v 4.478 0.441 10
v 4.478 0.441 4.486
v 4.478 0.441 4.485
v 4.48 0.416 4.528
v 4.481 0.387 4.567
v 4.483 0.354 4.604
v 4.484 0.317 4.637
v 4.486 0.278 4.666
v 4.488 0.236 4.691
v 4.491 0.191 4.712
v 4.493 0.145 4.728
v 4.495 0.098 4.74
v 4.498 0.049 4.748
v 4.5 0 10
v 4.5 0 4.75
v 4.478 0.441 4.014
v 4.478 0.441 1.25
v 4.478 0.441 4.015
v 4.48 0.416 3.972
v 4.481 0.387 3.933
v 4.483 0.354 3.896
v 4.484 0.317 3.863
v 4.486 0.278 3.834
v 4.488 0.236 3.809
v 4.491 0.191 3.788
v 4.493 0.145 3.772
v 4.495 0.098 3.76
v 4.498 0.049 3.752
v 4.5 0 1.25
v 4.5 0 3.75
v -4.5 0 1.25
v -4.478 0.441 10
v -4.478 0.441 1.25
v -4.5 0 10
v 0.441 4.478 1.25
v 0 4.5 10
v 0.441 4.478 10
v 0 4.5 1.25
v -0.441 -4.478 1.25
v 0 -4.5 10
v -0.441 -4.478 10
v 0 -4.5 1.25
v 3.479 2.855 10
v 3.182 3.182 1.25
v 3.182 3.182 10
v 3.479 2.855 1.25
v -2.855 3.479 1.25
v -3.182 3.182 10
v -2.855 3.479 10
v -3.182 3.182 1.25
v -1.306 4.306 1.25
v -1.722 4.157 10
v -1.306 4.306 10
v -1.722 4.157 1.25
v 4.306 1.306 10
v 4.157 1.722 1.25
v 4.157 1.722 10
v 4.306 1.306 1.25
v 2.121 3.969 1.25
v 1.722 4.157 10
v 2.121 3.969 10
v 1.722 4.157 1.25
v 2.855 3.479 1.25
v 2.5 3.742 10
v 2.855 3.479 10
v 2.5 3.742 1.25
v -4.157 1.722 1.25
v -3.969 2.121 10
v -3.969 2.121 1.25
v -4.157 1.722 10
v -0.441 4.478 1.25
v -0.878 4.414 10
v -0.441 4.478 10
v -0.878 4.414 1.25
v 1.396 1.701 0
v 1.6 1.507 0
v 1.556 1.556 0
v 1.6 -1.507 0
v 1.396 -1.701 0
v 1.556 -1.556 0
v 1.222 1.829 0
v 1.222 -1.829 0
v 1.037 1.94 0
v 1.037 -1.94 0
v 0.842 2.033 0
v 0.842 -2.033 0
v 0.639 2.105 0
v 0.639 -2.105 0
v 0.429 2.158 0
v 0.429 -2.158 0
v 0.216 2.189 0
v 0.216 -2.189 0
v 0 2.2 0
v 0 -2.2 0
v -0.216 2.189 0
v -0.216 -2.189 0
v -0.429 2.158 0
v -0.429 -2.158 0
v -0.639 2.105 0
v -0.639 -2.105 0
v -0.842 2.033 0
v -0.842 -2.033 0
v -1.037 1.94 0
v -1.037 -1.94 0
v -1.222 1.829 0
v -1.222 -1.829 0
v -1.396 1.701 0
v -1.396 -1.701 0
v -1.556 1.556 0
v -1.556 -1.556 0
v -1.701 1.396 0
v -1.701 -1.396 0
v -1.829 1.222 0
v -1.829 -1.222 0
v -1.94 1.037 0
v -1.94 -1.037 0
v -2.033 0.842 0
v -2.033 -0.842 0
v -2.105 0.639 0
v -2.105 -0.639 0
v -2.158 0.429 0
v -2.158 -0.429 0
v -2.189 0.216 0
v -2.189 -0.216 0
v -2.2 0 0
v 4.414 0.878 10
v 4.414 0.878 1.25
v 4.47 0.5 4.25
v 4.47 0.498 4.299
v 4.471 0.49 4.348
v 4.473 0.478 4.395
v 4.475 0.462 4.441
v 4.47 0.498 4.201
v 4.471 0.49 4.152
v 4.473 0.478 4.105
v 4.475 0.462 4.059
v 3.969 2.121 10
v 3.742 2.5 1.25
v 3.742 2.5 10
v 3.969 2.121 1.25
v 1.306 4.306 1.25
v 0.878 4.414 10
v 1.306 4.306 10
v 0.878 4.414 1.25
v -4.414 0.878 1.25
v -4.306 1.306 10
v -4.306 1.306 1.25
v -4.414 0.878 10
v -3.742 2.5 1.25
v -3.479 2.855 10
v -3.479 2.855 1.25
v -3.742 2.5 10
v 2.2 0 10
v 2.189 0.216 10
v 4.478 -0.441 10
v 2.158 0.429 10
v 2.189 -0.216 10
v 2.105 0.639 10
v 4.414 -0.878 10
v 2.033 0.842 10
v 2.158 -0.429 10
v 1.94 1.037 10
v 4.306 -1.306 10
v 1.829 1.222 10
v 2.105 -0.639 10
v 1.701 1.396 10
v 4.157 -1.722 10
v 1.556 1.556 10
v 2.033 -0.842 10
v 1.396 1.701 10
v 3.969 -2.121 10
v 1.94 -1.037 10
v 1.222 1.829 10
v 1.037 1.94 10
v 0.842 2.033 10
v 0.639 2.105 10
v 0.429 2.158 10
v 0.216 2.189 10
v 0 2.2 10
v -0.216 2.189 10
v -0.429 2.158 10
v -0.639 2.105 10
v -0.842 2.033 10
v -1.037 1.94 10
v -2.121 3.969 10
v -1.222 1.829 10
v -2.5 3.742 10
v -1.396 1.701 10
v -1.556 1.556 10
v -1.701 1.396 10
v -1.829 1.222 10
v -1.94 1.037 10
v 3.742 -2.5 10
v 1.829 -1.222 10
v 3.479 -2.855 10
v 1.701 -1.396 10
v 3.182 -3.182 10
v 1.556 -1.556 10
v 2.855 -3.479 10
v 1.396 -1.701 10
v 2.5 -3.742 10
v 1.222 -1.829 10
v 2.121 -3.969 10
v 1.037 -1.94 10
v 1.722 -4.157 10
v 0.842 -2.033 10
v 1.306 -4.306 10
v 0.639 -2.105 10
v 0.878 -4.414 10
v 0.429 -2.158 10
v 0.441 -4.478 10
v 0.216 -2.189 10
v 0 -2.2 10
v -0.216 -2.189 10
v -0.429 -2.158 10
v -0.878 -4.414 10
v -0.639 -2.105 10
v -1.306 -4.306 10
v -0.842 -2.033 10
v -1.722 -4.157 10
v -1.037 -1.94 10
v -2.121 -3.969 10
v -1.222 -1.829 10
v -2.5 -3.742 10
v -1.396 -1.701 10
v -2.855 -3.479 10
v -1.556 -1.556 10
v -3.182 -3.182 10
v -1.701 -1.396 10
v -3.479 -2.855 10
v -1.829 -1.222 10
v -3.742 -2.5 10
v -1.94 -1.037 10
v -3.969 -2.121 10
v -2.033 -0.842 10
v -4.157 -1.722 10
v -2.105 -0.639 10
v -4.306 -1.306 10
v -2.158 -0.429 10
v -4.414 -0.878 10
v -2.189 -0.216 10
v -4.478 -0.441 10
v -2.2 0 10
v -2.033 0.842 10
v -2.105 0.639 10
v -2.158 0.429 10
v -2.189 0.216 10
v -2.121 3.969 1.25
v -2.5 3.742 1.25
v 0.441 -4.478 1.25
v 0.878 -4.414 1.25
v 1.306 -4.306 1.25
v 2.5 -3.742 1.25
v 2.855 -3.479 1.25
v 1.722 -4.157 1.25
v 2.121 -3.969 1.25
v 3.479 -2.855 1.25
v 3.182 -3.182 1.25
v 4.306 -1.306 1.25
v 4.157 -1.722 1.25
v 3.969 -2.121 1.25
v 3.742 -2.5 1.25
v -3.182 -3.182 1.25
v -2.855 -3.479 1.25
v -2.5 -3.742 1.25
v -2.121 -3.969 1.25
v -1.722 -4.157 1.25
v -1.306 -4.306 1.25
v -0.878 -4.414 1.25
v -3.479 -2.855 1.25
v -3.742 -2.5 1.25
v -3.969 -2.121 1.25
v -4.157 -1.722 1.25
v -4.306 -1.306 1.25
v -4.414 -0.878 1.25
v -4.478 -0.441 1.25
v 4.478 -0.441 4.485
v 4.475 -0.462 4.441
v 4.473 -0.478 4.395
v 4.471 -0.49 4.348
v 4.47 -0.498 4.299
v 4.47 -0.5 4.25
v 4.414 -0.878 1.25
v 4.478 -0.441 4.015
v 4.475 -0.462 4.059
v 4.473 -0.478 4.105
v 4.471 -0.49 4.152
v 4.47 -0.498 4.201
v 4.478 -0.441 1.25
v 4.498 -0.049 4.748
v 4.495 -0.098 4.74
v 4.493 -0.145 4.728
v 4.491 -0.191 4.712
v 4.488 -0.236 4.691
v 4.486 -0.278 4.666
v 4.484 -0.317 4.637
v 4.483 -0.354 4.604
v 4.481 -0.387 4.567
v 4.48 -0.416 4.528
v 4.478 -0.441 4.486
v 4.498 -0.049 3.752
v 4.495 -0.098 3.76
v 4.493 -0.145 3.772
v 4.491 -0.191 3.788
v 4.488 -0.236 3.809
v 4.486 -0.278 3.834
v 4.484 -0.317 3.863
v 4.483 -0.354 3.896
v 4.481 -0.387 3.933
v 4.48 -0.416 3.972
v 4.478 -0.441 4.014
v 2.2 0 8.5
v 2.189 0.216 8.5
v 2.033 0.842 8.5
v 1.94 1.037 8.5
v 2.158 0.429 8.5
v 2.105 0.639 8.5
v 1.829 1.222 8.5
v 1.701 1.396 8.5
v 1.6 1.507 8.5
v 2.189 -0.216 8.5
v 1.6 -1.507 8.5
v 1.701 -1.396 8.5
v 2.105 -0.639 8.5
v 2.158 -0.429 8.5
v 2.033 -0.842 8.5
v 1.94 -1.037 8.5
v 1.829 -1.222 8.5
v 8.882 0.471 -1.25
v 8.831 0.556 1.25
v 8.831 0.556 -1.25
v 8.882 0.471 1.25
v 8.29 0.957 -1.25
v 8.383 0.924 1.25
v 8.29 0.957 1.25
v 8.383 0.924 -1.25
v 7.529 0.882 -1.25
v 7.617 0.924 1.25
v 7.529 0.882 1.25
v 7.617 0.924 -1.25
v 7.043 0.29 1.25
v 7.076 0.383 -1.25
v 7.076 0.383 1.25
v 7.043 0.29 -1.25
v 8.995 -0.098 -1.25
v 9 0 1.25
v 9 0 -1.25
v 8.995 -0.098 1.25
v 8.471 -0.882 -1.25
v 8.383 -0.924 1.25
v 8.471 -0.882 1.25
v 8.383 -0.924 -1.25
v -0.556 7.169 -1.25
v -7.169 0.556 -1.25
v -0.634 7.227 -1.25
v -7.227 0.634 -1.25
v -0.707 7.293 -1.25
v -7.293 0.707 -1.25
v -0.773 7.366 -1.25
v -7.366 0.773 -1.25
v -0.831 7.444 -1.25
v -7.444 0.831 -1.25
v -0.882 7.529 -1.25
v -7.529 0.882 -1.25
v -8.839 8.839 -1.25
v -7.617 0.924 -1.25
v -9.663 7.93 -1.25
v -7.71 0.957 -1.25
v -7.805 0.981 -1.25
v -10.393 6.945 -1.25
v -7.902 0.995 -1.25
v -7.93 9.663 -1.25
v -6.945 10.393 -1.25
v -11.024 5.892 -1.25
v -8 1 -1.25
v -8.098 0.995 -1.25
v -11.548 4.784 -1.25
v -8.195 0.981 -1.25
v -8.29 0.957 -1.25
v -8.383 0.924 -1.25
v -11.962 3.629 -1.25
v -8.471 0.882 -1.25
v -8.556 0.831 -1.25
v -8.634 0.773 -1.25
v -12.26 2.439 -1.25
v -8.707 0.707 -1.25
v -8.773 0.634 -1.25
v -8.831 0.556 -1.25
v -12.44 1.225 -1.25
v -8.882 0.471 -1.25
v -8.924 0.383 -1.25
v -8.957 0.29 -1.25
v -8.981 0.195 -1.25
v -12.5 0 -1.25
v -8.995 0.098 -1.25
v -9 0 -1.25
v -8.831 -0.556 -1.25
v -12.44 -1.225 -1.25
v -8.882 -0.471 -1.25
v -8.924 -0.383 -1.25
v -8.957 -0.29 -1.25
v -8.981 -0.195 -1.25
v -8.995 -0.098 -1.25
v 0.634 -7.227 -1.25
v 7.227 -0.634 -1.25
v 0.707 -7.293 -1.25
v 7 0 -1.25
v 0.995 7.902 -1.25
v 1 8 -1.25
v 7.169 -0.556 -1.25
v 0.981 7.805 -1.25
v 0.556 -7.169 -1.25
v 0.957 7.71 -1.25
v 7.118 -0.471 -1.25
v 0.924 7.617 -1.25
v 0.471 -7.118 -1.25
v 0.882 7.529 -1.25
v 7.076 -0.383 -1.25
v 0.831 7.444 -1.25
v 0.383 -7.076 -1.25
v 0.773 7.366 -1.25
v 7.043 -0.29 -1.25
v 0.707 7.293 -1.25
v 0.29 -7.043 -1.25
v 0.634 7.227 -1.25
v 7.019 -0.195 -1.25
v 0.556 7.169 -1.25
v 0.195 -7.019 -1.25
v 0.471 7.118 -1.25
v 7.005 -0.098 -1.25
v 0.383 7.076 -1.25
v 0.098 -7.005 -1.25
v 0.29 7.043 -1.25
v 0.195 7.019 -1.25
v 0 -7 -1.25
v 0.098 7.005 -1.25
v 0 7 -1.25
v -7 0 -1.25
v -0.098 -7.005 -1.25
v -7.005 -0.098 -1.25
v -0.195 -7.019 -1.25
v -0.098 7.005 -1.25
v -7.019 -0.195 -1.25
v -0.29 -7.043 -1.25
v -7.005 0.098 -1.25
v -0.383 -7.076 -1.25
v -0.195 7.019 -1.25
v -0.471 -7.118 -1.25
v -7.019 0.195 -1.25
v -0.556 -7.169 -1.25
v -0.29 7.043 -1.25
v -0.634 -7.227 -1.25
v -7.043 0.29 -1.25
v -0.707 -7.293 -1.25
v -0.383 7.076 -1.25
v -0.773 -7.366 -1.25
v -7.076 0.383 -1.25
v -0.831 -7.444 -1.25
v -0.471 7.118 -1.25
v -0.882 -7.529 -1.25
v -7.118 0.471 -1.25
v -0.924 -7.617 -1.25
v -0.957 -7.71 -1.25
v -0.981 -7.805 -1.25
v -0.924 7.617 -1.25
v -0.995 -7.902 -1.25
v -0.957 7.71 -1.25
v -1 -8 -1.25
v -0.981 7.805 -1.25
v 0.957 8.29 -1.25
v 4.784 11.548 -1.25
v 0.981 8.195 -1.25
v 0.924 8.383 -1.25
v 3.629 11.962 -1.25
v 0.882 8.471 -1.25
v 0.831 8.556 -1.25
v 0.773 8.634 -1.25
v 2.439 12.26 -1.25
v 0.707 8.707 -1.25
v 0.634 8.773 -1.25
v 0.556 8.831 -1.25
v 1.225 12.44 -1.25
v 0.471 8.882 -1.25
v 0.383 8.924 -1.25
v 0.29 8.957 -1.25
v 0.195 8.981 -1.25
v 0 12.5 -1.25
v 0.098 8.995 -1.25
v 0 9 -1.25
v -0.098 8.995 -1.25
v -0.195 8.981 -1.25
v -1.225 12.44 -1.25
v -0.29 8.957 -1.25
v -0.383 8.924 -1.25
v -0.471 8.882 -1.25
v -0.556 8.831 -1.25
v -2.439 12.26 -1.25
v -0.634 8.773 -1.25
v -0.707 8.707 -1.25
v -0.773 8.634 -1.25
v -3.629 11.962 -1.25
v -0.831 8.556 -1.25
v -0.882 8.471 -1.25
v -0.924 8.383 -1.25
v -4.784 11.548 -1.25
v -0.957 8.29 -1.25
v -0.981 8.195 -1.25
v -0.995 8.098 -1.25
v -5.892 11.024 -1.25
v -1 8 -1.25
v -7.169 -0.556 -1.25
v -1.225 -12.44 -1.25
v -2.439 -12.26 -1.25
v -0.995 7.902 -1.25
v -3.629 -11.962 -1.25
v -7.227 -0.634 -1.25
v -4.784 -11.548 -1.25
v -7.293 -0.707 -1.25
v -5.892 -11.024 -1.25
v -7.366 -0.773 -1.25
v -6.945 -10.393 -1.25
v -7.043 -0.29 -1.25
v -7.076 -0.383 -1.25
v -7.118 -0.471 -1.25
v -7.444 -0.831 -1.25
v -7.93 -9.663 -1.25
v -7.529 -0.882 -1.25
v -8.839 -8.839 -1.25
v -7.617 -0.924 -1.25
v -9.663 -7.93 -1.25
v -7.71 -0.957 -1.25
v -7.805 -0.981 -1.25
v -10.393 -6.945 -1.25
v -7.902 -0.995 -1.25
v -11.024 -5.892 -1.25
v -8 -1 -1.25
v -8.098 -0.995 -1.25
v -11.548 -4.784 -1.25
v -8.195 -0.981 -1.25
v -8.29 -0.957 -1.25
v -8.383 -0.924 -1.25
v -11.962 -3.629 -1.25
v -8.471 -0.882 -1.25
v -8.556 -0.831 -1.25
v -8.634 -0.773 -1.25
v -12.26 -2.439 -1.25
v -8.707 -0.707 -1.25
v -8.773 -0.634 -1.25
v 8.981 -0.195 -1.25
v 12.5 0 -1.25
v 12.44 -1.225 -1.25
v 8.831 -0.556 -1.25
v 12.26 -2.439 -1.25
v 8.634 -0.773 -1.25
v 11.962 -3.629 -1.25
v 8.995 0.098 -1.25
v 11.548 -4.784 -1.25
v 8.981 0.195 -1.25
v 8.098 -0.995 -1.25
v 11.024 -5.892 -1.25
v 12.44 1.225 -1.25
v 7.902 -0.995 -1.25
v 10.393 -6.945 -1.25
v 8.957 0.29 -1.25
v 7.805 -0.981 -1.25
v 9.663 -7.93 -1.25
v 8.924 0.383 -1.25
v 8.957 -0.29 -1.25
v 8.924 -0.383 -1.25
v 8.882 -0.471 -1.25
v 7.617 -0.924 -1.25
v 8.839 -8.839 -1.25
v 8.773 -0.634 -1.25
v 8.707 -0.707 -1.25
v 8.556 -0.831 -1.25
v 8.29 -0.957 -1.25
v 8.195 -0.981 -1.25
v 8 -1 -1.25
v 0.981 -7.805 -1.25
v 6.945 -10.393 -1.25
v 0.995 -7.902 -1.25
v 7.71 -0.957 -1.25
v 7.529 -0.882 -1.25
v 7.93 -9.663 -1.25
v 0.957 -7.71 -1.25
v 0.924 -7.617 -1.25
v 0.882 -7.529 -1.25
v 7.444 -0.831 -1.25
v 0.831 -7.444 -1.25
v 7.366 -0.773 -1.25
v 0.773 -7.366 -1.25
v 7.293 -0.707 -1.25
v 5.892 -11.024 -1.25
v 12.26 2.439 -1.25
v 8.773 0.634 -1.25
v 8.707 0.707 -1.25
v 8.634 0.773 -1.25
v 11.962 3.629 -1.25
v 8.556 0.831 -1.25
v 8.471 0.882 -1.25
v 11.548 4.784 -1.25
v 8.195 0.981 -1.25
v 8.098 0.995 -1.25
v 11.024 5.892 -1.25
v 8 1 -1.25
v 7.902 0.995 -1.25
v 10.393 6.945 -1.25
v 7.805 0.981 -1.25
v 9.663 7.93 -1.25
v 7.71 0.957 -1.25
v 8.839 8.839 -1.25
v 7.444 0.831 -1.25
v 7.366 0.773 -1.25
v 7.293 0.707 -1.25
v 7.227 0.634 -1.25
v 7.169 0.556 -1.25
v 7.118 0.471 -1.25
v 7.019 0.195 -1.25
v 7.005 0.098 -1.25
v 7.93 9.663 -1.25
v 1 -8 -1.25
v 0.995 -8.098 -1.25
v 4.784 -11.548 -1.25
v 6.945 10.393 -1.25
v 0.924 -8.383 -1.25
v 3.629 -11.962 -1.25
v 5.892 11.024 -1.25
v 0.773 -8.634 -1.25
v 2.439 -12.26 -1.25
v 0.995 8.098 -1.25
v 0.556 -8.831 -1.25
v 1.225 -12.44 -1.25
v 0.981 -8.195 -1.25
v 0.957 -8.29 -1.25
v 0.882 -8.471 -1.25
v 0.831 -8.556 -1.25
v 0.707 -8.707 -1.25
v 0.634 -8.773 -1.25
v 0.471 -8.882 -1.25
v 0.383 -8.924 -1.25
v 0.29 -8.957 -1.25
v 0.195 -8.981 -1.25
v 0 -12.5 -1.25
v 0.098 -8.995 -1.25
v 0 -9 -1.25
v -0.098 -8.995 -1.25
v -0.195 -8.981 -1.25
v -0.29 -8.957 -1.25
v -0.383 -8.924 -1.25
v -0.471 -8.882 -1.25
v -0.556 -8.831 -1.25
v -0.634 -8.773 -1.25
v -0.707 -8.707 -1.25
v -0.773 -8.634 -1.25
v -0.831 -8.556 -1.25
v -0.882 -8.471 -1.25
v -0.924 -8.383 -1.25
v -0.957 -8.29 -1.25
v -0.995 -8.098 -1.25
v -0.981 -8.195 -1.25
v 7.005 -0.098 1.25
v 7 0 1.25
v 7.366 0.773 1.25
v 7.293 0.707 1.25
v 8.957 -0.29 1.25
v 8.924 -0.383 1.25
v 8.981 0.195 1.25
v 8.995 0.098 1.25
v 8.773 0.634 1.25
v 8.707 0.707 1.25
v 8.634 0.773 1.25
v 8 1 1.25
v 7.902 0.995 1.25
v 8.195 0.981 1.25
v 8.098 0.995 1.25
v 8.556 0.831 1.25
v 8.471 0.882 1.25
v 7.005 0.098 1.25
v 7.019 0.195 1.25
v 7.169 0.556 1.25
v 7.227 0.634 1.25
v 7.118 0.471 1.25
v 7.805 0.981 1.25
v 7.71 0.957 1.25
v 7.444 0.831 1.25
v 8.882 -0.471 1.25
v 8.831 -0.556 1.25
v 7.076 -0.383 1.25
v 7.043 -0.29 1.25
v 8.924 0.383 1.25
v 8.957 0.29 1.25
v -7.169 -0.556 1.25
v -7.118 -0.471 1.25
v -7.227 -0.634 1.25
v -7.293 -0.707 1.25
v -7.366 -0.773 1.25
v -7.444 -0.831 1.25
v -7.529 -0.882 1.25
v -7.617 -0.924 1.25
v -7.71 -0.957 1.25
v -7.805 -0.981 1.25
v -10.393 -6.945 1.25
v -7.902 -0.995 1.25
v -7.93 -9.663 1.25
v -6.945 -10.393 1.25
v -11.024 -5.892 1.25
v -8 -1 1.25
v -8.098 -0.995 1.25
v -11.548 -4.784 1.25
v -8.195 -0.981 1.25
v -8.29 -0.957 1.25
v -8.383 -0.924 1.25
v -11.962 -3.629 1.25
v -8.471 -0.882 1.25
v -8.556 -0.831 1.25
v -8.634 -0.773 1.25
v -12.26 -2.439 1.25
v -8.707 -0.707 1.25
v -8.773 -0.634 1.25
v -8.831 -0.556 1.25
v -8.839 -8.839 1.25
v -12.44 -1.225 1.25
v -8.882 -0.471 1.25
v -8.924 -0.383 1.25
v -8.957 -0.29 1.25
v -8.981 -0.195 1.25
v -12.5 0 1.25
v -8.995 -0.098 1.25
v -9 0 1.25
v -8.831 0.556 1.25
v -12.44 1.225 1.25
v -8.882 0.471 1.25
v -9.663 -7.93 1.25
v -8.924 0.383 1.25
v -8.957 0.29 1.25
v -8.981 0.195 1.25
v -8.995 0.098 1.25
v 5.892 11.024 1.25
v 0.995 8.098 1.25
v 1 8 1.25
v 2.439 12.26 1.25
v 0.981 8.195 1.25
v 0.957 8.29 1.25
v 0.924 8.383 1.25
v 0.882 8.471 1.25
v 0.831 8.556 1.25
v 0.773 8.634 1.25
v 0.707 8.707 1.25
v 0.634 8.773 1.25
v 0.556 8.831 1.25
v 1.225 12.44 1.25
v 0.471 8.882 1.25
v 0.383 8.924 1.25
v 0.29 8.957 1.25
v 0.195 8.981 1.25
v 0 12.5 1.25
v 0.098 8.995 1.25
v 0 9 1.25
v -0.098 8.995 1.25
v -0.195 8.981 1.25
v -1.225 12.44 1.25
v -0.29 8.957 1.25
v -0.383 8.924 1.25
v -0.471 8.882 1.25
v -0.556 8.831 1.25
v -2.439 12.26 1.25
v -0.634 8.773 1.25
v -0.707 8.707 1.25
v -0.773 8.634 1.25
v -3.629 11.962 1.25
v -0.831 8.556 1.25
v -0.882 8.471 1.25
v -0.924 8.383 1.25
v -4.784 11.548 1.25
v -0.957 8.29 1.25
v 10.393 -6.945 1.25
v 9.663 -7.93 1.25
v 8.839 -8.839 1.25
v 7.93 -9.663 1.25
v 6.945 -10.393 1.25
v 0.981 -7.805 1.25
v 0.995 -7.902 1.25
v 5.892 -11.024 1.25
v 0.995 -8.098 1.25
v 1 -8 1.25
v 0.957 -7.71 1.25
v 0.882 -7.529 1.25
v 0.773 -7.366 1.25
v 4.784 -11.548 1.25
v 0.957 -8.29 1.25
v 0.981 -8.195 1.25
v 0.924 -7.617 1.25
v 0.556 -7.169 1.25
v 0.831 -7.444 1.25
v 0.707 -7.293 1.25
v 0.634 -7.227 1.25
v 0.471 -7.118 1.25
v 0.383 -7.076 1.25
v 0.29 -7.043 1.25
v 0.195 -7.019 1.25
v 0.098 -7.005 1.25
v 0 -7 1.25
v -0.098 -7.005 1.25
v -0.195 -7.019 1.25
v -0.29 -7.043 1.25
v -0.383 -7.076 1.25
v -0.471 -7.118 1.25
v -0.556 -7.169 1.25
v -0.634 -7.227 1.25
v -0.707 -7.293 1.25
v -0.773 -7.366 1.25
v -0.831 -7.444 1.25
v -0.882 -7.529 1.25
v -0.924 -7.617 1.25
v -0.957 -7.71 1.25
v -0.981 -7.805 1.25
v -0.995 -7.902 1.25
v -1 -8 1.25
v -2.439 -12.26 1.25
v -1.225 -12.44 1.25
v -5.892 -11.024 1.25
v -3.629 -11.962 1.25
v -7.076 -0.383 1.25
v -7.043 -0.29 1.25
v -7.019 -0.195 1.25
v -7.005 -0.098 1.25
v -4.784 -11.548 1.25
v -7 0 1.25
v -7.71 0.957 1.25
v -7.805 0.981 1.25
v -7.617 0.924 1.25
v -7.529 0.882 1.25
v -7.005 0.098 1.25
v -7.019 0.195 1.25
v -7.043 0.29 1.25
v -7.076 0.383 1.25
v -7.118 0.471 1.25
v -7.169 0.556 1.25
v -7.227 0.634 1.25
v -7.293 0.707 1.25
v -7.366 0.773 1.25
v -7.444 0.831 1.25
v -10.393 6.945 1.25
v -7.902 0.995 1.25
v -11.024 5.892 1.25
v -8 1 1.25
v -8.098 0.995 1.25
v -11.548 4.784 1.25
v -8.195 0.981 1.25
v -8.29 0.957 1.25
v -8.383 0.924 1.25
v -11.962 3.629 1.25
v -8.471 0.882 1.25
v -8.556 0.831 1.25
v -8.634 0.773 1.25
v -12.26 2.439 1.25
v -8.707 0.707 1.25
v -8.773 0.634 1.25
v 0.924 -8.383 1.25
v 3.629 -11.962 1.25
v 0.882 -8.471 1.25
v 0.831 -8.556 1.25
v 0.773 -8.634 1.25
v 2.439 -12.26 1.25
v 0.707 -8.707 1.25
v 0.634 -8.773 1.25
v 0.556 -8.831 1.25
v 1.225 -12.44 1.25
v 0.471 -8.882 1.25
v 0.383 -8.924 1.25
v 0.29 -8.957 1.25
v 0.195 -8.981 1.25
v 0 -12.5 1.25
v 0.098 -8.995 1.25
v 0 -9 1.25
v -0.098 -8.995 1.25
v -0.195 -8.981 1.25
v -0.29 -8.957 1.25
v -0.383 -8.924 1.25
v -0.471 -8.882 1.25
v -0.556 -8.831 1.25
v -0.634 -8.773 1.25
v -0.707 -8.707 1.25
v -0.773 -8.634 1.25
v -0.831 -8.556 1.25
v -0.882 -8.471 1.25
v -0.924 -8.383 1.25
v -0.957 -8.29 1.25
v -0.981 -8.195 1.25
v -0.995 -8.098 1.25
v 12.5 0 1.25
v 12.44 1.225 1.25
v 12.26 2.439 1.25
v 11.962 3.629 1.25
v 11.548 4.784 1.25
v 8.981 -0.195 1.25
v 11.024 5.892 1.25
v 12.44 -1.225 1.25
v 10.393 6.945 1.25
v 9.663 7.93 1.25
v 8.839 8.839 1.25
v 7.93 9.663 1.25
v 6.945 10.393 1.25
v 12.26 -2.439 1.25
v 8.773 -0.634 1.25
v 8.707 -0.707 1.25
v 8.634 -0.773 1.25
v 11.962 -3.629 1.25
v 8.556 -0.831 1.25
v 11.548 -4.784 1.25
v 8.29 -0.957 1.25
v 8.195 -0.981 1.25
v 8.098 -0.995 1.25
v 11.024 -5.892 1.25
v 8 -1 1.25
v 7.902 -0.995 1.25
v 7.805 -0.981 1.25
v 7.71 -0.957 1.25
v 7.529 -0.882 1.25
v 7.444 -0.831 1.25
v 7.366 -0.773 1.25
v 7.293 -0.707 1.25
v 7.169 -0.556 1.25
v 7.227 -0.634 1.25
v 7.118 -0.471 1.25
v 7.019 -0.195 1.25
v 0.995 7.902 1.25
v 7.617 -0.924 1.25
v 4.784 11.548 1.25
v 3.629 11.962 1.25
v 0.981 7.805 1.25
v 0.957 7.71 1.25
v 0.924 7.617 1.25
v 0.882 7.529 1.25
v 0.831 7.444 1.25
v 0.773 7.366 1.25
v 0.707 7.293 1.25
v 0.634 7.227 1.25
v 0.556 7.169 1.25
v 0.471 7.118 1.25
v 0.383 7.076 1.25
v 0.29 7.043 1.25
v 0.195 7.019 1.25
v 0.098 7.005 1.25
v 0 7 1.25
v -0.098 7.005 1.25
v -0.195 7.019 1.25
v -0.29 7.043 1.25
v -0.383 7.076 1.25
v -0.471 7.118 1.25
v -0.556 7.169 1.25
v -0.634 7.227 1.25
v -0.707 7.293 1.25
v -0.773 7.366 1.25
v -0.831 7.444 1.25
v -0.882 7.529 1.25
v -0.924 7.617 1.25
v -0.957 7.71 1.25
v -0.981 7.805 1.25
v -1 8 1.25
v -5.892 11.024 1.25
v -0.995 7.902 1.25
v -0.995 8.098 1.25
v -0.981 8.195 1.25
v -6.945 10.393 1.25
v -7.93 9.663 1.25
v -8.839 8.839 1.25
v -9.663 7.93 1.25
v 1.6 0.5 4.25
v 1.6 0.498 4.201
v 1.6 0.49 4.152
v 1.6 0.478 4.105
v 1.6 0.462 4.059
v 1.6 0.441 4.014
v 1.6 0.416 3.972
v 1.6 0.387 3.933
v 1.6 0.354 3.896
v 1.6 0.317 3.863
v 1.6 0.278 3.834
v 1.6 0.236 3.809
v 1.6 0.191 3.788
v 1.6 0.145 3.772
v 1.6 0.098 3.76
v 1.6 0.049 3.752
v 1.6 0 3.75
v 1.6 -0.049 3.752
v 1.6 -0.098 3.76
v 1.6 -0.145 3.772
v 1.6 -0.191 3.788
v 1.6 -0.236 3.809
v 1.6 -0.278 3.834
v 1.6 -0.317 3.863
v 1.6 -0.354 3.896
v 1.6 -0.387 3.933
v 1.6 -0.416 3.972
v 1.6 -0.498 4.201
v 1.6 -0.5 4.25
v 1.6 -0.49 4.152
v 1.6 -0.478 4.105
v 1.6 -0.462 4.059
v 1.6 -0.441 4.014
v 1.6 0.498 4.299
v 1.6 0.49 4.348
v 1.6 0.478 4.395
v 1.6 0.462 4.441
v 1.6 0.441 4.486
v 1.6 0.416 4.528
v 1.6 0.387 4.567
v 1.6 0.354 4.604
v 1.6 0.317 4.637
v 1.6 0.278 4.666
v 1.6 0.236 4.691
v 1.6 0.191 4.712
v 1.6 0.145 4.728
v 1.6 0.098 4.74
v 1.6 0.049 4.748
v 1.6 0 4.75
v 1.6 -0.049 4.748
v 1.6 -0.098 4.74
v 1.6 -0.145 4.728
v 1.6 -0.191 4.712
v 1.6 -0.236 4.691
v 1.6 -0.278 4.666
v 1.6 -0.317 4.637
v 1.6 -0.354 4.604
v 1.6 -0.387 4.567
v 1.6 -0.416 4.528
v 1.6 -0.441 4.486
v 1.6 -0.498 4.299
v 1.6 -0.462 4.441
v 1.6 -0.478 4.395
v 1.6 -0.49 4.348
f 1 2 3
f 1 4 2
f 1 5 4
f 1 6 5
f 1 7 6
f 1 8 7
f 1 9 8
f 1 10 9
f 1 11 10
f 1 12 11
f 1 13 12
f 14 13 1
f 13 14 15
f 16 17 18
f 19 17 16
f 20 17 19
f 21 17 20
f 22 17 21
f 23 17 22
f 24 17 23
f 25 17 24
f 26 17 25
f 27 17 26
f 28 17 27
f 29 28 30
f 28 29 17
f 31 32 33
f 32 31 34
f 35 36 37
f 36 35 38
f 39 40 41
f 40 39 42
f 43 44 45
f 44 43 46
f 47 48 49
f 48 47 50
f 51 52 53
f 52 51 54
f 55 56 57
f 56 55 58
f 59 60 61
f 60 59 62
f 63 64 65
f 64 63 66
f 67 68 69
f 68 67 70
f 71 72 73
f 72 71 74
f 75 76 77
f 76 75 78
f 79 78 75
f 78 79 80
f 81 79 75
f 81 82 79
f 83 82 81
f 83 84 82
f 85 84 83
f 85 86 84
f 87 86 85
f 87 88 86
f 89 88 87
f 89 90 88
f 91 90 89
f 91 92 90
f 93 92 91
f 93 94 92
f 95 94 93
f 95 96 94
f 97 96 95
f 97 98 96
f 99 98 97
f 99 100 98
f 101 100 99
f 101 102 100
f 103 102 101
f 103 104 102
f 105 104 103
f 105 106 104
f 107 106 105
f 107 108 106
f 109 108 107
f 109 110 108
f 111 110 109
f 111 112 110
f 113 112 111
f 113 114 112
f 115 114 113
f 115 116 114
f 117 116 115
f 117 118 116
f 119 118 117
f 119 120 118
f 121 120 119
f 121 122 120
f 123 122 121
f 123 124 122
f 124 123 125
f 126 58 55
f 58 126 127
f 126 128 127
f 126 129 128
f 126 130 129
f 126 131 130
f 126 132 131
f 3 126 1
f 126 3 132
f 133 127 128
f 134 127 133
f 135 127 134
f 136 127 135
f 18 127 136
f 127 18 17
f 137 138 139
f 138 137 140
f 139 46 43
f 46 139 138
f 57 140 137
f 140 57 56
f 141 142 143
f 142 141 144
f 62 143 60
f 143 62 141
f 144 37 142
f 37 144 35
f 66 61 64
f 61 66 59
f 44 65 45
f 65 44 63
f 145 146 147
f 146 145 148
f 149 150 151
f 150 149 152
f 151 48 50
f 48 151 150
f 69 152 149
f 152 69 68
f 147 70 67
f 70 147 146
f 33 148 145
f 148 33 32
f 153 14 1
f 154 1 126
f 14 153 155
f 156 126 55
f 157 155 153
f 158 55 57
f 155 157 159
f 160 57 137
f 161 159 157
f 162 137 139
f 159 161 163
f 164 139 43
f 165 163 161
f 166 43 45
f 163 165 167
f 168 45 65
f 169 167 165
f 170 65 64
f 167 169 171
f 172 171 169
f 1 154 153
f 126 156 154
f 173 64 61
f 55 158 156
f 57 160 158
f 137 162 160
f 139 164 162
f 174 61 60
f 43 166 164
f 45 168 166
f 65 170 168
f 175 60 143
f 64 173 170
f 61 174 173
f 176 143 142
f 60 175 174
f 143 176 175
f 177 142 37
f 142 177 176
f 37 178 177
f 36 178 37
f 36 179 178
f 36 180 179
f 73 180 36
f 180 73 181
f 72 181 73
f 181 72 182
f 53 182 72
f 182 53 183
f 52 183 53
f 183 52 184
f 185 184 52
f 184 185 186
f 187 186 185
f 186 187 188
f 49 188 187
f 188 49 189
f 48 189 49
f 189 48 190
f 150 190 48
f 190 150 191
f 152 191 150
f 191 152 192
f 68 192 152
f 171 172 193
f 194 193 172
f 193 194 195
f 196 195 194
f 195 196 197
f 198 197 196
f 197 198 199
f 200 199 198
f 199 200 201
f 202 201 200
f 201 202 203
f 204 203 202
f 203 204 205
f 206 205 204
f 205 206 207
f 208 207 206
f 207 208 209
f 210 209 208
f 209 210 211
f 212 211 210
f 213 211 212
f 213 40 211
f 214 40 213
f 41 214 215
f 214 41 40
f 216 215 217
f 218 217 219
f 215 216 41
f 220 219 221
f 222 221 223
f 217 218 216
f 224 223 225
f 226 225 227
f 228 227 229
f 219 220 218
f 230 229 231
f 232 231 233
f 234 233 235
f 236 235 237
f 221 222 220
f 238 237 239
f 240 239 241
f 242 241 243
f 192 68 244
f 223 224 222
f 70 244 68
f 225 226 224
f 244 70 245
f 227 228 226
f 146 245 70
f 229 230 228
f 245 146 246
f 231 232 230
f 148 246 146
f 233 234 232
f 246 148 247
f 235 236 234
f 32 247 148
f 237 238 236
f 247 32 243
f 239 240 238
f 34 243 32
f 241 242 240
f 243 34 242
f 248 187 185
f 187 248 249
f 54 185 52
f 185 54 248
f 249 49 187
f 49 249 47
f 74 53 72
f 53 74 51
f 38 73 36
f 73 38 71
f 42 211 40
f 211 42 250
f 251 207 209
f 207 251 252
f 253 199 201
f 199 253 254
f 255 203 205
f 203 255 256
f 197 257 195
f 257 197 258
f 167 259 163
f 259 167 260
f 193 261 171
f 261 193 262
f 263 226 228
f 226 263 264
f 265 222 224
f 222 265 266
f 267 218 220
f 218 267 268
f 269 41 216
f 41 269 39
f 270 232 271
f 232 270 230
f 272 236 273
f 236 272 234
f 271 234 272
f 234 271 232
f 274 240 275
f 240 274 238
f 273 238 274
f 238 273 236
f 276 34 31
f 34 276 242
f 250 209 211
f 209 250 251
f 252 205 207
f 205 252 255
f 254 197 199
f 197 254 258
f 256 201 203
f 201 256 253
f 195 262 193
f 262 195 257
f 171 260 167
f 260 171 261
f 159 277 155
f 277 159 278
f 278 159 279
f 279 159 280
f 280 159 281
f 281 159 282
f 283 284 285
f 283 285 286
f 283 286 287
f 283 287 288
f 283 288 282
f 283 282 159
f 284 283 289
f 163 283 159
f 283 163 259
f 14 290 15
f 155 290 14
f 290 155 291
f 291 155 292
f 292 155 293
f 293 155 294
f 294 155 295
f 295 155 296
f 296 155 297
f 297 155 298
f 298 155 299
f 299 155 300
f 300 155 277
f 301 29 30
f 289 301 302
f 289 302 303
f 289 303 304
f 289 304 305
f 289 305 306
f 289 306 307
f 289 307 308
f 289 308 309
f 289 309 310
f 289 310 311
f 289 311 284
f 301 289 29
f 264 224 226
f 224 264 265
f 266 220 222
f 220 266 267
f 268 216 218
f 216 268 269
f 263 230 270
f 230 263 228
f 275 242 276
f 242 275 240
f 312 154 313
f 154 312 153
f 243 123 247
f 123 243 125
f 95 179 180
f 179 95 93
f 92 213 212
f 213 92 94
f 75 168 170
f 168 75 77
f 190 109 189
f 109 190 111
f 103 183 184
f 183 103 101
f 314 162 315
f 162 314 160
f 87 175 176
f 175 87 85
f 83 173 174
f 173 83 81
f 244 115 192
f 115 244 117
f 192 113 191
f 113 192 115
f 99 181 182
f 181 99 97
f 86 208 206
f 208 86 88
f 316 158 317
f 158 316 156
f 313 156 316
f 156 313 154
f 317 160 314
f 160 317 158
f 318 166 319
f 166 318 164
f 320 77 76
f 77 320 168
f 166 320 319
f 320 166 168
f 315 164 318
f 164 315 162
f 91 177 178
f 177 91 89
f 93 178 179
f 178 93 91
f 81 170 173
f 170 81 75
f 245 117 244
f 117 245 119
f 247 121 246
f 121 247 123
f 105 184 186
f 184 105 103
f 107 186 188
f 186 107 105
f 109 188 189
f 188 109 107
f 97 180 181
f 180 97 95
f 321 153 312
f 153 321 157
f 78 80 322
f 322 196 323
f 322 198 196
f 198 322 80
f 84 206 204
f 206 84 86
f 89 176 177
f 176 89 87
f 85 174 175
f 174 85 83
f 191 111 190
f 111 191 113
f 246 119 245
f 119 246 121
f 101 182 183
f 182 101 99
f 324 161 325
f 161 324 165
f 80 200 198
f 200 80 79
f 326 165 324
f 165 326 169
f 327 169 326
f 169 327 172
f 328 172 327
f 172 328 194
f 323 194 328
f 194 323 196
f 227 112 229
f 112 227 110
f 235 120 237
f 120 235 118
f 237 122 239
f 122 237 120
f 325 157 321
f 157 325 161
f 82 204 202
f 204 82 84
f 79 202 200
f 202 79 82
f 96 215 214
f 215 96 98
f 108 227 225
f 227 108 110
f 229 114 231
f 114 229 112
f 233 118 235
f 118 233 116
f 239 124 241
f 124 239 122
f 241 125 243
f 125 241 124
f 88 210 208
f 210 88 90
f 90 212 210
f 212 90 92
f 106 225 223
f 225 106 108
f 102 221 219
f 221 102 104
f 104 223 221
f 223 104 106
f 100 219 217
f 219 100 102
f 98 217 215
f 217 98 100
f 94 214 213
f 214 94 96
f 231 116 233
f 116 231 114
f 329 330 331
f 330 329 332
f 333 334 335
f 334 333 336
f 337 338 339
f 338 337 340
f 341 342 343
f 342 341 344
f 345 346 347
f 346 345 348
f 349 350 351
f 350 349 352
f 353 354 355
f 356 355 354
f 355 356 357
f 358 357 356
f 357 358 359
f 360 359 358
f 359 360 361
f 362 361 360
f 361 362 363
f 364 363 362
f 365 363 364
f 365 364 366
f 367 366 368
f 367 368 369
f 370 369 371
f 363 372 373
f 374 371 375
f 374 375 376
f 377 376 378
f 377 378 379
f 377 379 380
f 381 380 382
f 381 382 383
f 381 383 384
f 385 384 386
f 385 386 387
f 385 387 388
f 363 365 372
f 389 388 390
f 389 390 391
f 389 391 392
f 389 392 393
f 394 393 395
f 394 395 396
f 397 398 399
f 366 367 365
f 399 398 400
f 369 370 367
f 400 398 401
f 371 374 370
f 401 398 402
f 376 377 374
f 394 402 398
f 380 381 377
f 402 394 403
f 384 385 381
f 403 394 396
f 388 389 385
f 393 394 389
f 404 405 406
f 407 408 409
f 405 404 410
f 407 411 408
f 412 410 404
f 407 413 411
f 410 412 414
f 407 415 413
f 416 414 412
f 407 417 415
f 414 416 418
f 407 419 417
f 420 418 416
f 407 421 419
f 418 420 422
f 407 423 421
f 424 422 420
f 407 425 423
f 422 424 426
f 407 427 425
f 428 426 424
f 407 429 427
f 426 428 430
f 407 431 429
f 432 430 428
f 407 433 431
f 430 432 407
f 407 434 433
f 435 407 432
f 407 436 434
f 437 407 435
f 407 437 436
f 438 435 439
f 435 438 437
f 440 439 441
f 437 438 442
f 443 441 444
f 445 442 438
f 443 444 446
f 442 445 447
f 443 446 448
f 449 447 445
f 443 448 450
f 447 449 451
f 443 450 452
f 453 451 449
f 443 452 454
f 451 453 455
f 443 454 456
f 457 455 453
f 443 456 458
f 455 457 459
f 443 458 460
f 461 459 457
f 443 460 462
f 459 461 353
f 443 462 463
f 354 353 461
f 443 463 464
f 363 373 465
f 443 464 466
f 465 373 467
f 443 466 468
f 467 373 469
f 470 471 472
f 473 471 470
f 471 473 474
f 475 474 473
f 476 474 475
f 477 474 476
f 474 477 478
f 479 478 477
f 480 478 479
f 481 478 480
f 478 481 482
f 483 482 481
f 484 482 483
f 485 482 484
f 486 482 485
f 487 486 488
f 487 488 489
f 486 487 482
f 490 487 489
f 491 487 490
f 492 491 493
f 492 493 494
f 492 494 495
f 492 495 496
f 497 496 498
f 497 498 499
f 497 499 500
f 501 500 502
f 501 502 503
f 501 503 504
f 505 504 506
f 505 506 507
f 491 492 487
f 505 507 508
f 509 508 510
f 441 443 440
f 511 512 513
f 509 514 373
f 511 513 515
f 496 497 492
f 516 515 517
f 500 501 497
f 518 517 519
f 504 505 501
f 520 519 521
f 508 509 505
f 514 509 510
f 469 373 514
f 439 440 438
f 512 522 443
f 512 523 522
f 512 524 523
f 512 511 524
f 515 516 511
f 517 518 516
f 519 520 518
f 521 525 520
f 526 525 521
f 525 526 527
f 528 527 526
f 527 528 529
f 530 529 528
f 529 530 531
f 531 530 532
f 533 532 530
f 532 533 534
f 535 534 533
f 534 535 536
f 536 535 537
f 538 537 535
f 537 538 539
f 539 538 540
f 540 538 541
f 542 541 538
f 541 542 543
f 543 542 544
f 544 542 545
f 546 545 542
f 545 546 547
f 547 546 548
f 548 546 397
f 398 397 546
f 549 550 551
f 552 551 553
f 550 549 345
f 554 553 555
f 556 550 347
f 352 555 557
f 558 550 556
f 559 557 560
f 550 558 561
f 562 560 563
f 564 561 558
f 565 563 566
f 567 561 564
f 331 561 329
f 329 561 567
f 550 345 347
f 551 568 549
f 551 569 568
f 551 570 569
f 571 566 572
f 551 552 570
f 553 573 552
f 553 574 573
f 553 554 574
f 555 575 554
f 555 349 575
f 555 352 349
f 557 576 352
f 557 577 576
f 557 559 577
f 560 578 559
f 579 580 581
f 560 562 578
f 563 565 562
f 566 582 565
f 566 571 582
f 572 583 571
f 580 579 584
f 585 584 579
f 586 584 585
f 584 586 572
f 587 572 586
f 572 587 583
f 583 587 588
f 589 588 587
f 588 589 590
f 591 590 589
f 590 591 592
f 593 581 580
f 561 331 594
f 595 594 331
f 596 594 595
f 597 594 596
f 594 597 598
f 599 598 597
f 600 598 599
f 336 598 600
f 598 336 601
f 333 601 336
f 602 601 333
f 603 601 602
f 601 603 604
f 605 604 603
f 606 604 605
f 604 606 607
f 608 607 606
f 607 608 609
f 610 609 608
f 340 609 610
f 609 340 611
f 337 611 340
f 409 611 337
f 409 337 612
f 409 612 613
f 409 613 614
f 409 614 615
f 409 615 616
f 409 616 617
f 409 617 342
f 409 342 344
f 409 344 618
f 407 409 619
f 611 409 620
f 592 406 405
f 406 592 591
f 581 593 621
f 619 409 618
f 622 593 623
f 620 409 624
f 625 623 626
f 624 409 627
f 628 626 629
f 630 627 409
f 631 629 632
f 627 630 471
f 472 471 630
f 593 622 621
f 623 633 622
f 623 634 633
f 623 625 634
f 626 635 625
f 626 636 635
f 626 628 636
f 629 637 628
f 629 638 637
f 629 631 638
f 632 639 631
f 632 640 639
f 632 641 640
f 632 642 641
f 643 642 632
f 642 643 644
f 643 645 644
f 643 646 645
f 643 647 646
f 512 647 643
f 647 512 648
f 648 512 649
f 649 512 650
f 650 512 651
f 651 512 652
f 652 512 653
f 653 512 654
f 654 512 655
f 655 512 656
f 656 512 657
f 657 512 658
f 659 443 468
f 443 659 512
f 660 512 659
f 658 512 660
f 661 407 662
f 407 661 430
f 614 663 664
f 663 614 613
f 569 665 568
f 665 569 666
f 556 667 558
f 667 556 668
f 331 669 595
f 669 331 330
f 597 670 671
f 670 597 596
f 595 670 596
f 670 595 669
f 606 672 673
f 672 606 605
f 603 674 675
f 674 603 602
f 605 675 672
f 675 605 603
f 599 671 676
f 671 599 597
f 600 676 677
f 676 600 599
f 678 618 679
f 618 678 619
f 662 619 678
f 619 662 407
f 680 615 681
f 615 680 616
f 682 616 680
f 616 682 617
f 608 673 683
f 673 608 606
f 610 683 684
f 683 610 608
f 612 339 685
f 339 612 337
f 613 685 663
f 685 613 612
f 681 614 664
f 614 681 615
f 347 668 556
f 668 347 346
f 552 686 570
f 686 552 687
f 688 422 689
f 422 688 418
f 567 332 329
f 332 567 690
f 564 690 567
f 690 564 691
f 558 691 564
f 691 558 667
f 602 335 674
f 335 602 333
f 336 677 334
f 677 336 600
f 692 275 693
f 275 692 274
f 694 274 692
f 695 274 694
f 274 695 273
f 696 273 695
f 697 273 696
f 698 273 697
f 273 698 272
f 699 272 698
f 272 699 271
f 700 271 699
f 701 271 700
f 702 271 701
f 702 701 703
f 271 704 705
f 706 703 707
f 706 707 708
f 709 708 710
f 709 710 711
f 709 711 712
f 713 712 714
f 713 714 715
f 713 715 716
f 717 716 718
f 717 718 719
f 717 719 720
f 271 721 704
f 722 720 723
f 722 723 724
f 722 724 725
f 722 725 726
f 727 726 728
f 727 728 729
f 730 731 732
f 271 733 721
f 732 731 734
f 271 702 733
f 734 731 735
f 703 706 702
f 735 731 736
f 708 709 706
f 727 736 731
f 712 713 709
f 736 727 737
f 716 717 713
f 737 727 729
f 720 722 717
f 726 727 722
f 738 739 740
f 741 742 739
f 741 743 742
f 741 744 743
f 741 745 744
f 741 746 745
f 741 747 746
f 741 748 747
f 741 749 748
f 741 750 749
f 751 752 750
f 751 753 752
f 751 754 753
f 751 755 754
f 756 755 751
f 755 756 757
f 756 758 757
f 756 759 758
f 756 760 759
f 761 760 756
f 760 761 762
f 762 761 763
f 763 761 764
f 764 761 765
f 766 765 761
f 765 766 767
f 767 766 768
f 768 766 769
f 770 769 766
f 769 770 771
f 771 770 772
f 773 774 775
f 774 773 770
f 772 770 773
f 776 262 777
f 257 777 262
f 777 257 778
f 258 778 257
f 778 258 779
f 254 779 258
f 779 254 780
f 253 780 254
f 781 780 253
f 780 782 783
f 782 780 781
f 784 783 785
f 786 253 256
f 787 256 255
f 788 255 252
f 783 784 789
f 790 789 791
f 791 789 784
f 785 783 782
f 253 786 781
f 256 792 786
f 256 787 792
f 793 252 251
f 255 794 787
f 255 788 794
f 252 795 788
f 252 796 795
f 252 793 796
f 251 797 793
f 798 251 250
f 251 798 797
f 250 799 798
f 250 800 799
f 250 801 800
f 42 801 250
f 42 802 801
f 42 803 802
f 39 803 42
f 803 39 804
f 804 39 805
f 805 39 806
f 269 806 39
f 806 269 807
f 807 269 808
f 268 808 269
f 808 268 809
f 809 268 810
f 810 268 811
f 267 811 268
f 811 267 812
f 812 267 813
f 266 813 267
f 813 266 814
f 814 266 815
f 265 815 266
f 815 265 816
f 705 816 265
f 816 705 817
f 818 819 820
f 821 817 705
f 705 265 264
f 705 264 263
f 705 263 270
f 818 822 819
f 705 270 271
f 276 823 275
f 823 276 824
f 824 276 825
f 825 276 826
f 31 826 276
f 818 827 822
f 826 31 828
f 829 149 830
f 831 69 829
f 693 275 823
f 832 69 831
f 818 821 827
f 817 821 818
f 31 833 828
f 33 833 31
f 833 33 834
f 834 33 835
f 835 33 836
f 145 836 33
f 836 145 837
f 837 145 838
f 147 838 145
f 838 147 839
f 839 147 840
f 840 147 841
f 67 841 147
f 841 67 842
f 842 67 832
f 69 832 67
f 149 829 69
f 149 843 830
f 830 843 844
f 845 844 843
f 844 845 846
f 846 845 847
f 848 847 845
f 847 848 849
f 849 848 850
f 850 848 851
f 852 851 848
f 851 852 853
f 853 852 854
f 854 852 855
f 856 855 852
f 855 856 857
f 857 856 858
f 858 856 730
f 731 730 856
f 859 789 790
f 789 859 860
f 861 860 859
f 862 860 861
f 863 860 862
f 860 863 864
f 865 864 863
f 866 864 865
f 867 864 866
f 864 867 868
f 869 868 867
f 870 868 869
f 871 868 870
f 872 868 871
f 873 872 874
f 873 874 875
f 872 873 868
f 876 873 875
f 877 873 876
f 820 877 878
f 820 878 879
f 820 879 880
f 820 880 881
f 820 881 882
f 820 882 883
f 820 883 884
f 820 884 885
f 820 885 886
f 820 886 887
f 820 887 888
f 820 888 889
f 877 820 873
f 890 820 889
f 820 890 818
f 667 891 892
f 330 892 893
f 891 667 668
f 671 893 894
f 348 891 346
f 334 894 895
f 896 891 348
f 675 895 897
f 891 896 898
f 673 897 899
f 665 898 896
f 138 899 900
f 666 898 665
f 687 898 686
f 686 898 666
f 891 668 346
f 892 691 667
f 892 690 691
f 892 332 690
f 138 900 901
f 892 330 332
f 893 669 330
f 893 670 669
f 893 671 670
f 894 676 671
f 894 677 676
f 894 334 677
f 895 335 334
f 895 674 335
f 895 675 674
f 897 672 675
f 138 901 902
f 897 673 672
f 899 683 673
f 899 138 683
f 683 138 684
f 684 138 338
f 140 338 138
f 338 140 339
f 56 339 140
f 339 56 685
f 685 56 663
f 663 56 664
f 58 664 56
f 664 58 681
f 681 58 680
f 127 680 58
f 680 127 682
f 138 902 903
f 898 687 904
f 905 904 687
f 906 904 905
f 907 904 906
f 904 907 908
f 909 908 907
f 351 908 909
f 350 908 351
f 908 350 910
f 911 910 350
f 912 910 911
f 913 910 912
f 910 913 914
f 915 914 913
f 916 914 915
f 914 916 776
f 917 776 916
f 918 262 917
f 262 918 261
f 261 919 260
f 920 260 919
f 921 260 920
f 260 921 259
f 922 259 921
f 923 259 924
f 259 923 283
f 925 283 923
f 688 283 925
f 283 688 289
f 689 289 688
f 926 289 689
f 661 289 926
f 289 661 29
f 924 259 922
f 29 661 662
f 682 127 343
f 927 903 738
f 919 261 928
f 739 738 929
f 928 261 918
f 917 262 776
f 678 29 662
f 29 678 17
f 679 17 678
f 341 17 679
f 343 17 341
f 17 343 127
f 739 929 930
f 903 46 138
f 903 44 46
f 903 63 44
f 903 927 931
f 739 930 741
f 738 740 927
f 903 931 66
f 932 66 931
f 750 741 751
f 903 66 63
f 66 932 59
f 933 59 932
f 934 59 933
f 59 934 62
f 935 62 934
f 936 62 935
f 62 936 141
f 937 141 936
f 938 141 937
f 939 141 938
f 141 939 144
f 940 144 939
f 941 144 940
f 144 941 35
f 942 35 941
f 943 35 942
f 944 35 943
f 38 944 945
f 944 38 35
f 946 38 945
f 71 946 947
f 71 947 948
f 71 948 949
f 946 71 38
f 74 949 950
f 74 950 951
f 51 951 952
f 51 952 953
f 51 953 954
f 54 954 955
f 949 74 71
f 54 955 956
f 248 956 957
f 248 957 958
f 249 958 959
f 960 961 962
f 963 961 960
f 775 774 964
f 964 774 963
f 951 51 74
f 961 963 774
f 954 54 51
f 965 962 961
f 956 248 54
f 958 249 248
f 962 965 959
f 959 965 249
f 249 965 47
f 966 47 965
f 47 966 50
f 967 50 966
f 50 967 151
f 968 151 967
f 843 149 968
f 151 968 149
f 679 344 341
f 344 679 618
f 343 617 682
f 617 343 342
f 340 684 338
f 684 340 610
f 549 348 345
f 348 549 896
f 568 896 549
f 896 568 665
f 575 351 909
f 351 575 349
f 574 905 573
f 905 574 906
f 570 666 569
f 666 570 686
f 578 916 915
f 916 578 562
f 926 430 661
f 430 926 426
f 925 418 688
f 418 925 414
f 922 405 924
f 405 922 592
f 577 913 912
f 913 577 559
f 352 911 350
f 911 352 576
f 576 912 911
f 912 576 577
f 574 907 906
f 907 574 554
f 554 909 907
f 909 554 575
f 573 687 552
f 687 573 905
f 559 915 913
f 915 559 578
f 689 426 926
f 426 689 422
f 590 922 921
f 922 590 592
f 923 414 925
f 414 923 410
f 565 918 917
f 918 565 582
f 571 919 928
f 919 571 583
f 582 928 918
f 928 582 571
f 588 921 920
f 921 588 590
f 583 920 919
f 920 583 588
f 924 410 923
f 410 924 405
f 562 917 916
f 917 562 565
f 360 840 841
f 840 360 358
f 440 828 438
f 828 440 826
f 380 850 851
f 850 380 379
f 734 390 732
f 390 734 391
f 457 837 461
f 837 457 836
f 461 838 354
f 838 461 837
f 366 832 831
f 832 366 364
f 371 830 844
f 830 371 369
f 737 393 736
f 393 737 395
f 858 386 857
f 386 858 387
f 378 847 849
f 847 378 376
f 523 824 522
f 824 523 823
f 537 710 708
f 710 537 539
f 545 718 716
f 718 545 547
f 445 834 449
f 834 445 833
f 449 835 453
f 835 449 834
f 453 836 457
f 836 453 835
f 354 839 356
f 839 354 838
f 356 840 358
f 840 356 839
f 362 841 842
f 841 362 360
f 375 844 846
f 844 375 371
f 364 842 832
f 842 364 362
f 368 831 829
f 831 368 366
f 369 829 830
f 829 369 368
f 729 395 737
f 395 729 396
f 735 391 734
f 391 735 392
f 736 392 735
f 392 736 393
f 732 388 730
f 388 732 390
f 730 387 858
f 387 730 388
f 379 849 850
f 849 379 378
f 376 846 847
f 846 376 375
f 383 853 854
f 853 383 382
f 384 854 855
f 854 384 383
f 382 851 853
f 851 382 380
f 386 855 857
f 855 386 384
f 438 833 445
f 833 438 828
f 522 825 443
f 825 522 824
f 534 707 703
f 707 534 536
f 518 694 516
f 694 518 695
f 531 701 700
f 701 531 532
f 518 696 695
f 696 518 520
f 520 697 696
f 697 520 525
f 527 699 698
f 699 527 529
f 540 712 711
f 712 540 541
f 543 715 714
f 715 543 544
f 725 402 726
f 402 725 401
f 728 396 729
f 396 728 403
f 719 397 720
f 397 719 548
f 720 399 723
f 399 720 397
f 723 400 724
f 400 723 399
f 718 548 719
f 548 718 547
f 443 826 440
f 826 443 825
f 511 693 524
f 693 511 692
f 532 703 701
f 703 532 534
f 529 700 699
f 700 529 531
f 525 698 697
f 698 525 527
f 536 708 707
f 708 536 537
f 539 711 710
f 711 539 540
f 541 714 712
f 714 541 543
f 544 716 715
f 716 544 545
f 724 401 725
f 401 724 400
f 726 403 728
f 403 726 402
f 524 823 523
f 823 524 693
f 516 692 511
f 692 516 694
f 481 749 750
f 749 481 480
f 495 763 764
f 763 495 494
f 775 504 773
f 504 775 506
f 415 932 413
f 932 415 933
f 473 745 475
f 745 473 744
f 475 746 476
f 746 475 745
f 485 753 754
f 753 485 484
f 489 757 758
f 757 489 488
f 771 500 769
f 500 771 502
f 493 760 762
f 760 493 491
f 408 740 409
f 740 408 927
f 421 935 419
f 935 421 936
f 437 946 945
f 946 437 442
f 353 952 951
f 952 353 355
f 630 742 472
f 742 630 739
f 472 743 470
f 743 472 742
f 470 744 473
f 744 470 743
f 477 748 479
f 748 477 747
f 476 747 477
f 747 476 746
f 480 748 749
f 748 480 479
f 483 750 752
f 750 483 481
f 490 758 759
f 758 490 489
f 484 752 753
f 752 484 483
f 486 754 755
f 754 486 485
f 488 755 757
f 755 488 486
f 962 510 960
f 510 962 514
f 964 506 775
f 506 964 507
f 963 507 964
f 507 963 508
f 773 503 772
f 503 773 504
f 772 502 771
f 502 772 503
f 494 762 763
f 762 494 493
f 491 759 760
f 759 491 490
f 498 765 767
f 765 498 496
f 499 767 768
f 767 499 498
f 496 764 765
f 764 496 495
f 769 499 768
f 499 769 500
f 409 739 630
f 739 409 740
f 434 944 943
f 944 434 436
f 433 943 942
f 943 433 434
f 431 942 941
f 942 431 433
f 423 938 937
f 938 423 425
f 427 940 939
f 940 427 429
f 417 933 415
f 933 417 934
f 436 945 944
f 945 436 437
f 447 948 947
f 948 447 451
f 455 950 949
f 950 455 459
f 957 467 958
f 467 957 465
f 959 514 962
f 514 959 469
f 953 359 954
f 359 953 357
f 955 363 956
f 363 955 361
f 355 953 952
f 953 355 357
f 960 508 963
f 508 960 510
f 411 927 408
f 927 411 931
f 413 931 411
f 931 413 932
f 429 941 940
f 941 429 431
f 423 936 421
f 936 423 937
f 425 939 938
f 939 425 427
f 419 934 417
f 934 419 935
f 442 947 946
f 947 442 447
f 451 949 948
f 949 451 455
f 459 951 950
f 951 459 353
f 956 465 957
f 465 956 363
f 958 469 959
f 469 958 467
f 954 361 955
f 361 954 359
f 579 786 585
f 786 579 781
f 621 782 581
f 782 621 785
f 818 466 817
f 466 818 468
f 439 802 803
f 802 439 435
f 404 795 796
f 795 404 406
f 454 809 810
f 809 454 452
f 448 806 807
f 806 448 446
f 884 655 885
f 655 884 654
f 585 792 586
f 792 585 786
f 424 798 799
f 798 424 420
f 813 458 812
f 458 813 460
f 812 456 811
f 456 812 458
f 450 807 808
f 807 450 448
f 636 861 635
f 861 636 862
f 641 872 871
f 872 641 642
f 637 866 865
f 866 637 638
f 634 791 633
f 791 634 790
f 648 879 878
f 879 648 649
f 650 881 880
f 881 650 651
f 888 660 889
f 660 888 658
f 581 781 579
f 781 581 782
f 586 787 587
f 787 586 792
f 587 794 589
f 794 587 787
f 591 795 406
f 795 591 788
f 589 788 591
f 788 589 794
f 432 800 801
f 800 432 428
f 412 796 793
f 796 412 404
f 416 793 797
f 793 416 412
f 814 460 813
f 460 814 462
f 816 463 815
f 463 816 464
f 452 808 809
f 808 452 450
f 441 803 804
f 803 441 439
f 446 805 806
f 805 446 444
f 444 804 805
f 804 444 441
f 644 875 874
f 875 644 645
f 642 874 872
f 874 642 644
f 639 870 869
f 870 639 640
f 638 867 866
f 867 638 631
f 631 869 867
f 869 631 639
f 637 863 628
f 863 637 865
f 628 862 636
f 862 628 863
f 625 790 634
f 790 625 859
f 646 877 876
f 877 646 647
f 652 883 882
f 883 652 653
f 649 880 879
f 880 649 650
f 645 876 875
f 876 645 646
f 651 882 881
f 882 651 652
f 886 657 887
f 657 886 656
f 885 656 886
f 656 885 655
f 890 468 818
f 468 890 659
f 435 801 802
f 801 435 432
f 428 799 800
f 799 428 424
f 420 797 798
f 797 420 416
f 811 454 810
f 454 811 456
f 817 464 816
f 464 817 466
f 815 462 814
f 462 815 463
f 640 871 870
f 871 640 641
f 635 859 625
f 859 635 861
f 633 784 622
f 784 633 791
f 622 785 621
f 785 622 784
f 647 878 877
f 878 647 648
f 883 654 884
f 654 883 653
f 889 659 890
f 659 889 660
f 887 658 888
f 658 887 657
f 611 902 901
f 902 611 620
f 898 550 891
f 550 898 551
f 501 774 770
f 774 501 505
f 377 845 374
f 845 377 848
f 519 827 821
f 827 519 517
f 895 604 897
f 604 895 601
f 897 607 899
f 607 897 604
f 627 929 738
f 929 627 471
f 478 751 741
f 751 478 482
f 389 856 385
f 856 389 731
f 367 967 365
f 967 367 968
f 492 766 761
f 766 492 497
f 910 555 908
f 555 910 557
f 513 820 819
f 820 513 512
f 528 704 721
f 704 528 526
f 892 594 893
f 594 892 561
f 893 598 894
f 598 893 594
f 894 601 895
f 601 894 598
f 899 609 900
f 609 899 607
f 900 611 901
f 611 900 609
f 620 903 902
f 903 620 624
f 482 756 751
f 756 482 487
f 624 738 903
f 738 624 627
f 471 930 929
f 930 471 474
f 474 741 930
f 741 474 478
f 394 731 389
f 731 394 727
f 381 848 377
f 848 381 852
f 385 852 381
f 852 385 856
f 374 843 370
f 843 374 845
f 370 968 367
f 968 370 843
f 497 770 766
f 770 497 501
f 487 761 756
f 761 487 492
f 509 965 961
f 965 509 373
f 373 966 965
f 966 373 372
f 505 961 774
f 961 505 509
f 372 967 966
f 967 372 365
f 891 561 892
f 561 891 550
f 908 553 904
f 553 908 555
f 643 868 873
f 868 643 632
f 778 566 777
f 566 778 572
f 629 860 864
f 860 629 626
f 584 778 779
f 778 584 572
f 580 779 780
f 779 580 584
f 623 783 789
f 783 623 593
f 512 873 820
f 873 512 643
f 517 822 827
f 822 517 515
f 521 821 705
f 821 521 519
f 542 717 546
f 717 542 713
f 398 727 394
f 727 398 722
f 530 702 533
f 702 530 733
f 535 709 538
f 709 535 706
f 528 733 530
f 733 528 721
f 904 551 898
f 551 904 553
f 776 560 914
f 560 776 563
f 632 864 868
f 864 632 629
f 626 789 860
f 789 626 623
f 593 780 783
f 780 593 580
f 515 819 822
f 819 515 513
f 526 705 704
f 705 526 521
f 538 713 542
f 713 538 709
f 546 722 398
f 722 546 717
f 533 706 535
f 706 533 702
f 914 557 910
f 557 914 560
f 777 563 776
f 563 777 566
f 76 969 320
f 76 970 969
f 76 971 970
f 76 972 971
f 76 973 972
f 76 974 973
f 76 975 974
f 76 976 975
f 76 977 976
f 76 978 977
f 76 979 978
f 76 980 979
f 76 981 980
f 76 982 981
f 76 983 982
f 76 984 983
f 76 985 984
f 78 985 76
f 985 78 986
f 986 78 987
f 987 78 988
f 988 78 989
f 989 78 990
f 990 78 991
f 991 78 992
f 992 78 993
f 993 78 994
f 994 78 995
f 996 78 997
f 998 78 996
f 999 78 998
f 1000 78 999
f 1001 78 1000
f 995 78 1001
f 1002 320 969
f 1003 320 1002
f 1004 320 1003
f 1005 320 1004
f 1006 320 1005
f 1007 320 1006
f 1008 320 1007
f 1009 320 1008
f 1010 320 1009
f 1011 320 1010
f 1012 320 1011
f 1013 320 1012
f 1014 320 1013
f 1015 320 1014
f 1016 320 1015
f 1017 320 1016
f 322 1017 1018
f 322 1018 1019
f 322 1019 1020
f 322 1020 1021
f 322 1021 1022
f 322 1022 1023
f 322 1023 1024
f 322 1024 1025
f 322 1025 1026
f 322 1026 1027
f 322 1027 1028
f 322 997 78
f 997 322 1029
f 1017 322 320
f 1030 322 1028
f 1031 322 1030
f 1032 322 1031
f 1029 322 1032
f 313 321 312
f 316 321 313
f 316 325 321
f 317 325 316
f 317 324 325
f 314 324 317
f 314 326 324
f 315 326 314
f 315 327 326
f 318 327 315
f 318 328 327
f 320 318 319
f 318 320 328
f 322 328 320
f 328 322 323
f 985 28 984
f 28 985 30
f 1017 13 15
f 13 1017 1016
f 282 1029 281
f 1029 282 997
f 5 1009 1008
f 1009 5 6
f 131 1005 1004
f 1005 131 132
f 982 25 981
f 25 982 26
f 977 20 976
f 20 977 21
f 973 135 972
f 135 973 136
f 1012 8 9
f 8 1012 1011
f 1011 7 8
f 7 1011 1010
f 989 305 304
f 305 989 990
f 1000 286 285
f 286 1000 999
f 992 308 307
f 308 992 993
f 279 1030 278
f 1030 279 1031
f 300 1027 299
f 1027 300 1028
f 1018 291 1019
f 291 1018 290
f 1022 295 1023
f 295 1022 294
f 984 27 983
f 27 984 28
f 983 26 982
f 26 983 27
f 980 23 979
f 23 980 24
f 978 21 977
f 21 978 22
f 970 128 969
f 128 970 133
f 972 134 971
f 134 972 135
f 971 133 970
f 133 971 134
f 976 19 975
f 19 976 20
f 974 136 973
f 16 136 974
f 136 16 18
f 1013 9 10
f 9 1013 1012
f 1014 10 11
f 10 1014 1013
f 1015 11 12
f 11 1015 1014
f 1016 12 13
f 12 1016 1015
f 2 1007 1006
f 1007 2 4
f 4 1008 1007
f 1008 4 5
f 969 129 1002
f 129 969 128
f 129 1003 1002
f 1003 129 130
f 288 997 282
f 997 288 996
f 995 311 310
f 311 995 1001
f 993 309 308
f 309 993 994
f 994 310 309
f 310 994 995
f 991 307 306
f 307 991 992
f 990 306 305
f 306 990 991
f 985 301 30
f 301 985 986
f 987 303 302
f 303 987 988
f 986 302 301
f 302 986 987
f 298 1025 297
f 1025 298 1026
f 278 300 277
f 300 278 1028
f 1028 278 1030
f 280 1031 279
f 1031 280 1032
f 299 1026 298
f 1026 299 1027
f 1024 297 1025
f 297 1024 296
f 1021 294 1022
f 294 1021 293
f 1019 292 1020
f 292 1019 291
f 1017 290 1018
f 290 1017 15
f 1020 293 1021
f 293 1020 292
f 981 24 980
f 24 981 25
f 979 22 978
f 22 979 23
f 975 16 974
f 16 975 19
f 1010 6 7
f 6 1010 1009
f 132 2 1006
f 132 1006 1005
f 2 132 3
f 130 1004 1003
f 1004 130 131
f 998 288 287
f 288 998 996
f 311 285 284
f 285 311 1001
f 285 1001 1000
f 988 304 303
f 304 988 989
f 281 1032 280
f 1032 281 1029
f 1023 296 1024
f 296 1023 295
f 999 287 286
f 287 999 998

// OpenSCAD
$fn=64;

difference(){
    union(){
        difference(){
            cylinder(10, 4.5, 4.5);
            cylinder(10, 2.2, 2.2);
        }

        translate([1.6,-2,0])cube([1, 4, 8.5]);
    }

    #translate([1.5,0,4.25])rotate([0,90,0])cylinder(3, 0.5, 0.5); 
}

difference(){
    translate([0,0,-1.25])cylinder(2.5, 12.5, 12.5);
    cylinder(10, 2.2, 2.2);
    
    #translate([0,0,-1.25])union(){
        translate([8,0,0])cylinder(2.5, 1, 1);
        translate([-8,0,0])cylinder(2.5, 1, 1);
        translate([0,8,0])cylinder(2.5, 1, 1);
        translate([0,-8,0])cylinder(2.5, 1, 1);
    }
}
